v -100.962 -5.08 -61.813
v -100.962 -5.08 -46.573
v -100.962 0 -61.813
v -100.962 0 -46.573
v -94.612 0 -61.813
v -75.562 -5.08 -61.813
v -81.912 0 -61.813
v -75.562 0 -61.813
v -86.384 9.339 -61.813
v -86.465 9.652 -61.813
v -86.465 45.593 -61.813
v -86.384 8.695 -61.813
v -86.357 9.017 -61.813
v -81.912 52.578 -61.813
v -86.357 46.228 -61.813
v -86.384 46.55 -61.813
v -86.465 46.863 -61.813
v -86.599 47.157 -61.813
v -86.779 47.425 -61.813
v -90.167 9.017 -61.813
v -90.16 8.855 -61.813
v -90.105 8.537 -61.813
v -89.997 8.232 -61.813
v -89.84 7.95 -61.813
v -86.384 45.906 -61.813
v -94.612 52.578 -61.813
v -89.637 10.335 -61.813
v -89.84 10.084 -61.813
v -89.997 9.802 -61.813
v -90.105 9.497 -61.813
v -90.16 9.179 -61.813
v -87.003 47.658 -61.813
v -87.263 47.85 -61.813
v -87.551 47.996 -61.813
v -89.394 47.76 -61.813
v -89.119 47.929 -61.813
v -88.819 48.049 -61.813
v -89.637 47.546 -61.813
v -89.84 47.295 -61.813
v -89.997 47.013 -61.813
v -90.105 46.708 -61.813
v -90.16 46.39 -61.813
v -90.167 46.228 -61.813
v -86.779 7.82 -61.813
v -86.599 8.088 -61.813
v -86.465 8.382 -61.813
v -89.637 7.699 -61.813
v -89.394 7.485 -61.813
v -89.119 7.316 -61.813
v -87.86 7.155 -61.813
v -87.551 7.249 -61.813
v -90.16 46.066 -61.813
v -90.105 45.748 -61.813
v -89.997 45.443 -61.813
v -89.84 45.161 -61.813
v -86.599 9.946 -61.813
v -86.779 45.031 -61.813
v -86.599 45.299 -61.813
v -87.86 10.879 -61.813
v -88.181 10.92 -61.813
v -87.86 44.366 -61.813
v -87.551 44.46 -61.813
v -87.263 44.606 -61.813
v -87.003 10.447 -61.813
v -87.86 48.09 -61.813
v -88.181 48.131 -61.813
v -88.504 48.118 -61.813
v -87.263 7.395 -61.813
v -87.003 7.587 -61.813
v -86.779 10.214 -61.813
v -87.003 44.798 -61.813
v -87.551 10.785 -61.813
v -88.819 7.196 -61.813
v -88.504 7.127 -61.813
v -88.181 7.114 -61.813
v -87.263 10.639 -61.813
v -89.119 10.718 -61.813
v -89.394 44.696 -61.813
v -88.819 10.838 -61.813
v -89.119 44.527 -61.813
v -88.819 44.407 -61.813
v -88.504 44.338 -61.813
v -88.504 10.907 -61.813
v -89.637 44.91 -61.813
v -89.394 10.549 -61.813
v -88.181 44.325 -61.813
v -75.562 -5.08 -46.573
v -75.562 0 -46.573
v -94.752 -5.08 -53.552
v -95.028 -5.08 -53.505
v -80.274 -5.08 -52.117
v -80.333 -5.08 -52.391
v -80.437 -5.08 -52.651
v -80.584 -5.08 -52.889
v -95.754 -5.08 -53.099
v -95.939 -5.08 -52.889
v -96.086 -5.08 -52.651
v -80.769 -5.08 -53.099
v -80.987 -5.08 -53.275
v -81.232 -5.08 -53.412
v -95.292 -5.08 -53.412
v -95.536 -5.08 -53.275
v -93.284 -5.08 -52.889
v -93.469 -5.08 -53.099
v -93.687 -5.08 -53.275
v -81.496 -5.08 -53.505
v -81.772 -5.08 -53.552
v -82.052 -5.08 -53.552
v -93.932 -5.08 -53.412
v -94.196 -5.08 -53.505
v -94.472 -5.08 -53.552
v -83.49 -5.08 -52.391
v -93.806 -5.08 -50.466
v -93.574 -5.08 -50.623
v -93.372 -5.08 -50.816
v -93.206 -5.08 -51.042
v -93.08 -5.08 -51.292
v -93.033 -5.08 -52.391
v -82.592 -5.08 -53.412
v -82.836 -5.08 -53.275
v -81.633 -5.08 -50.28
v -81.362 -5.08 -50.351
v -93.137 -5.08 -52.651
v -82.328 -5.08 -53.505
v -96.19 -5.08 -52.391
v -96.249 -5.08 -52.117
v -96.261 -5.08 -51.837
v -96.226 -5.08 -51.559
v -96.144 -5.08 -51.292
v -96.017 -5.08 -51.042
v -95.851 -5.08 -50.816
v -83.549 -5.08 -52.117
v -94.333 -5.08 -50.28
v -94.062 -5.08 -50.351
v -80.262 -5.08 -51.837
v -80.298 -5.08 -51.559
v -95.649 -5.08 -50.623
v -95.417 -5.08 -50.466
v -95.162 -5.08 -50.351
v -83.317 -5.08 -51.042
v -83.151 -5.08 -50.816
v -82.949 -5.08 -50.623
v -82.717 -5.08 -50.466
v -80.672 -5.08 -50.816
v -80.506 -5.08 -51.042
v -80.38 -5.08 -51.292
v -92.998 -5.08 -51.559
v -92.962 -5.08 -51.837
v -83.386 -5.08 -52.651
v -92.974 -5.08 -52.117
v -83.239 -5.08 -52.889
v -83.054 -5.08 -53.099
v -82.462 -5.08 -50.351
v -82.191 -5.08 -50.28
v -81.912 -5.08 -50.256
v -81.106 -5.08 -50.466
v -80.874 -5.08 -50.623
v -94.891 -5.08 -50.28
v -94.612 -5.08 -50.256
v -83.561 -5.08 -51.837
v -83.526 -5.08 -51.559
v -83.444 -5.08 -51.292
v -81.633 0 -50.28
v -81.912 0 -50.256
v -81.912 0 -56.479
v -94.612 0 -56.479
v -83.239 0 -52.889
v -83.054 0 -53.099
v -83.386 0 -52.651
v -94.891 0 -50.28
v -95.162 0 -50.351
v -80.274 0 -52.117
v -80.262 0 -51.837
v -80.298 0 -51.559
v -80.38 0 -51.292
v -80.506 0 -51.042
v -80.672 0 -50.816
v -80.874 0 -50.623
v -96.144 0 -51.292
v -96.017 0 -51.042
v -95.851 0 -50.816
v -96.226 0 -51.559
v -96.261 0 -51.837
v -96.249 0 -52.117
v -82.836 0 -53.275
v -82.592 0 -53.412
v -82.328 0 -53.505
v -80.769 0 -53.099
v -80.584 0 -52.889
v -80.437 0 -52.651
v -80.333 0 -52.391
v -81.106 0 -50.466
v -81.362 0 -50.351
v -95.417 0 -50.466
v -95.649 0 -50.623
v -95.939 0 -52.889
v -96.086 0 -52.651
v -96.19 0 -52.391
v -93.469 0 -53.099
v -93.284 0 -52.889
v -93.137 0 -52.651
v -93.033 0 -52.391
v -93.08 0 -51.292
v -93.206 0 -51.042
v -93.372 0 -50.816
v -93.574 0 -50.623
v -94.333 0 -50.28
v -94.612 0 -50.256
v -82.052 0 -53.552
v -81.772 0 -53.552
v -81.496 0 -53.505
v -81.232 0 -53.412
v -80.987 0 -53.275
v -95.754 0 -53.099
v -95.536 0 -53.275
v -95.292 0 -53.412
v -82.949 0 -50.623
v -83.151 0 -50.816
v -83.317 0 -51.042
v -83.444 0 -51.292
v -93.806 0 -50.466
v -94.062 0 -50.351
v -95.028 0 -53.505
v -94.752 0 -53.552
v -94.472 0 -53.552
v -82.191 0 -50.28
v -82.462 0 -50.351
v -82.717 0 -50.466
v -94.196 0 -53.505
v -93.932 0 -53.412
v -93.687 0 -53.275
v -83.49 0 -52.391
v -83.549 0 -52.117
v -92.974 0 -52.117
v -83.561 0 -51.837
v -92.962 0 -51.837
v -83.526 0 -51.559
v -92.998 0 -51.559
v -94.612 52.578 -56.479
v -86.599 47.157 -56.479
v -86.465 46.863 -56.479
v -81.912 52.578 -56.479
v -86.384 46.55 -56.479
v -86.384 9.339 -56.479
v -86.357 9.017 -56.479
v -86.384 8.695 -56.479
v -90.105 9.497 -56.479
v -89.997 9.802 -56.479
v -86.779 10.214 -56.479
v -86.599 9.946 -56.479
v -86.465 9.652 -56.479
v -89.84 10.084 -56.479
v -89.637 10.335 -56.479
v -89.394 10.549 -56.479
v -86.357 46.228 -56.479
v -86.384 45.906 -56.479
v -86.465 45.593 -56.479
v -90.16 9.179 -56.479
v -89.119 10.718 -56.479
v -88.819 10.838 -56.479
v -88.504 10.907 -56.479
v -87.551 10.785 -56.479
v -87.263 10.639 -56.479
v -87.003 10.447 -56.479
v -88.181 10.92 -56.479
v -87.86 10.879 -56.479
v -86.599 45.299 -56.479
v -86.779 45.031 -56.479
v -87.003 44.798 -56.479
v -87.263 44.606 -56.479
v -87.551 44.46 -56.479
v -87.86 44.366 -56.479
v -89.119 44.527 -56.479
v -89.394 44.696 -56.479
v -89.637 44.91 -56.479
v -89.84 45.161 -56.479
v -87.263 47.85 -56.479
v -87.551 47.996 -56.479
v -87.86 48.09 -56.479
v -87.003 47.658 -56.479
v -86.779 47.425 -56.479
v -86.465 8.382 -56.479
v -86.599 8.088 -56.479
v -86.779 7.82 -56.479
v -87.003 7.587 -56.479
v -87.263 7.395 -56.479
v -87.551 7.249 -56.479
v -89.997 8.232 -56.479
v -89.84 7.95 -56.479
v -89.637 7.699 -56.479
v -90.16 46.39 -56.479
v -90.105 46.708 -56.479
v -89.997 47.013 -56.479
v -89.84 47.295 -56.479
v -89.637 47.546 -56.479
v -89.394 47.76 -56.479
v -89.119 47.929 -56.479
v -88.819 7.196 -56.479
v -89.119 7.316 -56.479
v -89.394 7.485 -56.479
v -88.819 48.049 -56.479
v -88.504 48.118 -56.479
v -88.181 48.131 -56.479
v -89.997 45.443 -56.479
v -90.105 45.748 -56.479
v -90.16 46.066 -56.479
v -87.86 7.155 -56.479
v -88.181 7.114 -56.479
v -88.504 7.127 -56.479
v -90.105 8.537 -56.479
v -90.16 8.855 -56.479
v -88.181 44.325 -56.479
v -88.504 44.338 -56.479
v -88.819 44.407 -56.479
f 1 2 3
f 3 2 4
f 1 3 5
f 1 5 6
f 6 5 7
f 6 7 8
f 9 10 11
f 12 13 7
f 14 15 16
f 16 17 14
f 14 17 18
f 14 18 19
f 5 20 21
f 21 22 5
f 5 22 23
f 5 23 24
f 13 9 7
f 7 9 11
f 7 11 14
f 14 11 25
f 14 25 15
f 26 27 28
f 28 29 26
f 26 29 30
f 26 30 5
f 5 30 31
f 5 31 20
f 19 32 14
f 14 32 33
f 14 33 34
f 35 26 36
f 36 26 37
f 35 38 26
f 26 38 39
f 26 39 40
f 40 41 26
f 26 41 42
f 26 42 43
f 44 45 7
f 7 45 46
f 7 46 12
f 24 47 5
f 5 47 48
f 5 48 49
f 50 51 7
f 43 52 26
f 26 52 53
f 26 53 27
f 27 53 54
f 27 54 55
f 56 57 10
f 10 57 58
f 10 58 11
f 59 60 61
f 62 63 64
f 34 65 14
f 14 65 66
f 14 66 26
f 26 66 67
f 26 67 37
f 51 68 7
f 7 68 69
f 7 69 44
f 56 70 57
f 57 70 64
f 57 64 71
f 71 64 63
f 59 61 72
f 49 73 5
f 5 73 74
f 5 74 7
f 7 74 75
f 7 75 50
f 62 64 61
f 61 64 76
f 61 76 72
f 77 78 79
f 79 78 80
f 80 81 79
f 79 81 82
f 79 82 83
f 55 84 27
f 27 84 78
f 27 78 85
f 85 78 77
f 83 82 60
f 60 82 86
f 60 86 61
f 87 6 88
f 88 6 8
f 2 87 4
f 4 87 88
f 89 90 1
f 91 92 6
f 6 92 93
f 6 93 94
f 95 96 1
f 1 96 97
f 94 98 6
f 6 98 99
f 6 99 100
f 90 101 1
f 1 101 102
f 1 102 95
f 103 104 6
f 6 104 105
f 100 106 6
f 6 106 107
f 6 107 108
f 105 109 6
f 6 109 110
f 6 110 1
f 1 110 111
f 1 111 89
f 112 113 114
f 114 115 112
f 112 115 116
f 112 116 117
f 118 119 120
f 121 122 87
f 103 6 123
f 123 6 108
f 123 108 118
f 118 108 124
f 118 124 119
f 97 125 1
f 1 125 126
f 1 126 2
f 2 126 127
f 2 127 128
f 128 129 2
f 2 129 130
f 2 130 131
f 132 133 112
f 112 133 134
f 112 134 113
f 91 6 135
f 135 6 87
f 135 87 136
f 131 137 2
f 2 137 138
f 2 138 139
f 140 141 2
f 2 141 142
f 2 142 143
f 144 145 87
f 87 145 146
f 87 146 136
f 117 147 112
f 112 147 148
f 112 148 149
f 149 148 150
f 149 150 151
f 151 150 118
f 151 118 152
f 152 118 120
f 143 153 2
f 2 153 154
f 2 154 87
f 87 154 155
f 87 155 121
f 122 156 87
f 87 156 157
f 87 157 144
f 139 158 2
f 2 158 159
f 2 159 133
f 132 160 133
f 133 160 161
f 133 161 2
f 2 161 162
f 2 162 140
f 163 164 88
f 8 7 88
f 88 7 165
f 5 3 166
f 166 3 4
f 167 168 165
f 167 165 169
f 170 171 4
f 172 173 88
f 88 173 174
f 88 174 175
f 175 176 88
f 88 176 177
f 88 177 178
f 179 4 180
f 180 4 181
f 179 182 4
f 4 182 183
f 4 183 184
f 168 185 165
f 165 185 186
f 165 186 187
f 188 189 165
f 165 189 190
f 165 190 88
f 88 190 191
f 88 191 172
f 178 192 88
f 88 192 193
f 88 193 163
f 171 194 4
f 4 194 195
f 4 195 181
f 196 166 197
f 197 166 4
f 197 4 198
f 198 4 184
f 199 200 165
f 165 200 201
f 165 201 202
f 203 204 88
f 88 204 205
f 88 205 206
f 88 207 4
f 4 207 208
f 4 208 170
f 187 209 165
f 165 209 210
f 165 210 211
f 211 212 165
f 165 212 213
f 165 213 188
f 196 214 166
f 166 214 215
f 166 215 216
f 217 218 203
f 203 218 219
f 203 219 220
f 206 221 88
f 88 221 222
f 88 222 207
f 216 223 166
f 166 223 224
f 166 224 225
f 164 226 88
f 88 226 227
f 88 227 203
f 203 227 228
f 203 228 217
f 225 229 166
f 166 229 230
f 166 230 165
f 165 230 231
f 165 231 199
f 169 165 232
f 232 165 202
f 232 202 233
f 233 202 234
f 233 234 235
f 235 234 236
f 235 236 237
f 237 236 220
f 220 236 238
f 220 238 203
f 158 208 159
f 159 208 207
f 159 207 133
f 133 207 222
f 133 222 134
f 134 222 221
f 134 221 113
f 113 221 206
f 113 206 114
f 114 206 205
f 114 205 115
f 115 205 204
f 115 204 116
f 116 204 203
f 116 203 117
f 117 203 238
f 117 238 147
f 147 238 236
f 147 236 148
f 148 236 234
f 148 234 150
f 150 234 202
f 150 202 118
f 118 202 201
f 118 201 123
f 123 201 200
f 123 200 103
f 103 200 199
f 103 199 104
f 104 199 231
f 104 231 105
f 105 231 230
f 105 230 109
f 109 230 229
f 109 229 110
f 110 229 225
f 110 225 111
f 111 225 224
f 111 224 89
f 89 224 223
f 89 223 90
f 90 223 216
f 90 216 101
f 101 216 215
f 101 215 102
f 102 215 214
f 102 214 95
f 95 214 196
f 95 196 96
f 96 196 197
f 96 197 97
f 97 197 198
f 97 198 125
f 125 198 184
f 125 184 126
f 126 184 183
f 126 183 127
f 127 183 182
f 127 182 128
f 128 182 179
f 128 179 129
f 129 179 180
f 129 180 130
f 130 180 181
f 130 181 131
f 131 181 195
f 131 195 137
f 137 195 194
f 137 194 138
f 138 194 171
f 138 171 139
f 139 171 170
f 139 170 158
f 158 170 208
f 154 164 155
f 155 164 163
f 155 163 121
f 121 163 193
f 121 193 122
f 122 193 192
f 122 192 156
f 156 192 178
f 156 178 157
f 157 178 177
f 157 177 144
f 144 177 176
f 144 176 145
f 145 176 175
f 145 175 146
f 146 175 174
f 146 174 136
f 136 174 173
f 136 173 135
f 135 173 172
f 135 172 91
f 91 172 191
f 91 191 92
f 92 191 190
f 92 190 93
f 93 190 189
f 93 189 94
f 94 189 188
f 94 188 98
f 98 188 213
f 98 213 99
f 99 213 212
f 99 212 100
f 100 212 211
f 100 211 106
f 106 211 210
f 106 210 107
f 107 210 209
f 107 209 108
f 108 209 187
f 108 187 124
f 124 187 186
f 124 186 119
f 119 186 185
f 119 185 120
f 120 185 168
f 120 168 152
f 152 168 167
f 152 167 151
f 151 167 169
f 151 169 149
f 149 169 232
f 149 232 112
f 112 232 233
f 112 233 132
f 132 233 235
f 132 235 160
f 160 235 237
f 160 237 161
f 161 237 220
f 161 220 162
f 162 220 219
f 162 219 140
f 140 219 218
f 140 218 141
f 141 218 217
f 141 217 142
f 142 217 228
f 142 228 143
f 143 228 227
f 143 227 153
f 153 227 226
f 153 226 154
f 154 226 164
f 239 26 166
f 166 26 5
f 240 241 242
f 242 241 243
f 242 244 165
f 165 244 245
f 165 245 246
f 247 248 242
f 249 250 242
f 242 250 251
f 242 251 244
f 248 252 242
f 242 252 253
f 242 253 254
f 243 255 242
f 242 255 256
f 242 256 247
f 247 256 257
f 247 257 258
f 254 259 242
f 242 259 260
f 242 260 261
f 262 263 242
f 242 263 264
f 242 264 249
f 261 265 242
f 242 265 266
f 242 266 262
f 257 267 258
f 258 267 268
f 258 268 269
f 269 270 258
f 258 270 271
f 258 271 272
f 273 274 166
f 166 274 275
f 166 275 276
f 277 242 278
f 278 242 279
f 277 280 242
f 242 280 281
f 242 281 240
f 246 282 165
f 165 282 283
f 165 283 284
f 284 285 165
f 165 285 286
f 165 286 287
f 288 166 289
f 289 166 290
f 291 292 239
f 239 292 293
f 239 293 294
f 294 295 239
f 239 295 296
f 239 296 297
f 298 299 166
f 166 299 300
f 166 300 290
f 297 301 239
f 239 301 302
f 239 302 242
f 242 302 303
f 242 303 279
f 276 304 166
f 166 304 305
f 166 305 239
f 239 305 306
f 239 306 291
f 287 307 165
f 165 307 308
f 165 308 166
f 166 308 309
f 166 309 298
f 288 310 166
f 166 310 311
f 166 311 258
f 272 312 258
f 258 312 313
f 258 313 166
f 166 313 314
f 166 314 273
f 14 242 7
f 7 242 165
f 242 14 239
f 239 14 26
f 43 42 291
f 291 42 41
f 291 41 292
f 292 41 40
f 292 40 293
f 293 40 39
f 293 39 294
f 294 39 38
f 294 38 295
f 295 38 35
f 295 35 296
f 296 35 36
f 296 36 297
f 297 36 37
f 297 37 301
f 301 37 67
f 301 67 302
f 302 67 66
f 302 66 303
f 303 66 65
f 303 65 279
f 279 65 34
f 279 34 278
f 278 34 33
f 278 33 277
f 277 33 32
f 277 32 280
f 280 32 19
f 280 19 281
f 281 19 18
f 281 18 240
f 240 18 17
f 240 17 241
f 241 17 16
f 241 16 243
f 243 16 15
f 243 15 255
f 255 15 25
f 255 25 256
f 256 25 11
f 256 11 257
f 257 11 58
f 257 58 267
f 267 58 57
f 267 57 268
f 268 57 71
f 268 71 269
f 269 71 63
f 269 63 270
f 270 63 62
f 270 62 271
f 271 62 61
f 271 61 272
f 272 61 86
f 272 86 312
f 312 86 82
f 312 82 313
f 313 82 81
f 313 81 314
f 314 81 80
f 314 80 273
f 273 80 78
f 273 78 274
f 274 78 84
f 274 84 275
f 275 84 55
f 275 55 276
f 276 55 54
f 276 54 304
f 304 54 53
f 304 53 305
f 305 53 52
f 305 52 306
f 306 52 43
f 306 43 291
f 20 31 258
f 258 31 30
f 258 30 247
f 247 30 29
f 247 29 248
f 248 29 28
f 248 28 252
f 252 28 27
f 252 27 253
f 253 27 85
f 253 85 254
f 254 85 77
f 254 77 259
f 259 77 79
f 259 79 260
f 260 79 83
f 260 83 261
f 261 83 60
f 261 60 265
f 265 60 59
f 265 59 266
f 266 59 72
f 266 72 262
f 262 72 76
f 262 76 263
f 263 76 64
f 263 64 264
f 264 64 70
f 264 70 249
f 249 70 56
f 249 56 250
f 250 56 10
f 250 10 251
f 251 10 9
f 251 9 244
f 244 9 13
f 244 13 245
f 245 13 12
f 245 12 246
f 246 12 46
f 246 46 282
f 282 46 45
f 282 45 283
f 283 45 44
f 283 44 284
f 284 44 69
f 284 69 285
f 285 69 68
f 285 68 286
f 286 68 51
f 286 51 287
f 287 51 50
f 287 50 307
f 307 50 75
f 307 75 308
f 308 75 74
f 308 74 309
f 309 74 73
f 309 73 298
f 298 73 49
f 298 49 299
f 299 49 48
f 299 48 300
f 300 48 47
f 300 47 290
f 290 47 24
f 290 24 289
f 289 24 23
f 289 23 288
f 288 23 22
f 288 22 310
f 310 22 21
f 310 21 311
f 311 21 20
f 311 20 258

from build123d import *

# Parameters (mm, degrees)
SKETCH1_W           = 25.4
SKETCH1_H           = 15.24
BOSS_EXTRUDE1_DEPTH = 5.08
SKETCH2_R           = 1.651
CUT_EXTRUDE1_DEPTH  = 119.490202326
SKETCH3_W           = 12.7
SKETCH3_H           = 5.334
BOSS_EXTRUDE2_DEPTH = 52.578
SKETCH4_R           = 1.905
CUT_EXTRUDE2_DEPTH  = 115.262072587


with BuildPart() as part:
    # Sketch1 → Boss-Extrude1 (new body)
    with BuildSketch(Plane(origin=(0, 0, 0), x_dir=(1, 0, 0), z_dir=(0, 1, 0))):
        with Locations((-88.261608108, 54.193229454)):
            Rectangle(SKETCH1_W, SKETCH1_H)
    extrude(amount=-BOSS_EXTRUDE1_DEPTH)

    # Sketch2 → Cut-Extrude1 (cut, through all)
    with BuildSketch(Plane(origin=(0, 0, 0), x_dir=(1, 0, 0), z_dir=(0, 1, 0))):
        with Locations(Location((-94.611608108, 51.907229454, 0), (0, 0, 270))):
            Circle(SKETCH2_R)
        with Locations(Location((-81.911608108, 51.907229454, 0), (0, 0, 270))):
            Circle(SKETCH2_R)
    extrude(amount=-CUT_EXTRUDE1_DEPTH, mode=Mode.SUBTRACT)

    # Sketch3 → Boss-Extrude2 (add)
    with BuildSketch(Plane(origin=(0, 0, 0), x_dir=(1, 0, 0), z_dir=(0, 1, 0))):
        with Locations((-88.261608108, 59.146229454)):
            Rectangle(SKETCH3_W, SKETCH3_H)
    extrude(amount=BOSS_EXTRUDE2_DEPTH)

    # Sketch4 → Cut-Extrude2 (cut, through all)
    with BuildSketch(Plane.XY.offset(-56.479229454)):
        with Locations((-88.261608108, 46.228)):
            Circle(SKETCH4_R)
        with Locations((-88.261608108, 9.017)):
            Circle(SKETCH4_R)
    extrude(amount=-CUT_EXTRUDE2_DEPTH, mode=Mode.SUBTRACT)


solid = part.part
